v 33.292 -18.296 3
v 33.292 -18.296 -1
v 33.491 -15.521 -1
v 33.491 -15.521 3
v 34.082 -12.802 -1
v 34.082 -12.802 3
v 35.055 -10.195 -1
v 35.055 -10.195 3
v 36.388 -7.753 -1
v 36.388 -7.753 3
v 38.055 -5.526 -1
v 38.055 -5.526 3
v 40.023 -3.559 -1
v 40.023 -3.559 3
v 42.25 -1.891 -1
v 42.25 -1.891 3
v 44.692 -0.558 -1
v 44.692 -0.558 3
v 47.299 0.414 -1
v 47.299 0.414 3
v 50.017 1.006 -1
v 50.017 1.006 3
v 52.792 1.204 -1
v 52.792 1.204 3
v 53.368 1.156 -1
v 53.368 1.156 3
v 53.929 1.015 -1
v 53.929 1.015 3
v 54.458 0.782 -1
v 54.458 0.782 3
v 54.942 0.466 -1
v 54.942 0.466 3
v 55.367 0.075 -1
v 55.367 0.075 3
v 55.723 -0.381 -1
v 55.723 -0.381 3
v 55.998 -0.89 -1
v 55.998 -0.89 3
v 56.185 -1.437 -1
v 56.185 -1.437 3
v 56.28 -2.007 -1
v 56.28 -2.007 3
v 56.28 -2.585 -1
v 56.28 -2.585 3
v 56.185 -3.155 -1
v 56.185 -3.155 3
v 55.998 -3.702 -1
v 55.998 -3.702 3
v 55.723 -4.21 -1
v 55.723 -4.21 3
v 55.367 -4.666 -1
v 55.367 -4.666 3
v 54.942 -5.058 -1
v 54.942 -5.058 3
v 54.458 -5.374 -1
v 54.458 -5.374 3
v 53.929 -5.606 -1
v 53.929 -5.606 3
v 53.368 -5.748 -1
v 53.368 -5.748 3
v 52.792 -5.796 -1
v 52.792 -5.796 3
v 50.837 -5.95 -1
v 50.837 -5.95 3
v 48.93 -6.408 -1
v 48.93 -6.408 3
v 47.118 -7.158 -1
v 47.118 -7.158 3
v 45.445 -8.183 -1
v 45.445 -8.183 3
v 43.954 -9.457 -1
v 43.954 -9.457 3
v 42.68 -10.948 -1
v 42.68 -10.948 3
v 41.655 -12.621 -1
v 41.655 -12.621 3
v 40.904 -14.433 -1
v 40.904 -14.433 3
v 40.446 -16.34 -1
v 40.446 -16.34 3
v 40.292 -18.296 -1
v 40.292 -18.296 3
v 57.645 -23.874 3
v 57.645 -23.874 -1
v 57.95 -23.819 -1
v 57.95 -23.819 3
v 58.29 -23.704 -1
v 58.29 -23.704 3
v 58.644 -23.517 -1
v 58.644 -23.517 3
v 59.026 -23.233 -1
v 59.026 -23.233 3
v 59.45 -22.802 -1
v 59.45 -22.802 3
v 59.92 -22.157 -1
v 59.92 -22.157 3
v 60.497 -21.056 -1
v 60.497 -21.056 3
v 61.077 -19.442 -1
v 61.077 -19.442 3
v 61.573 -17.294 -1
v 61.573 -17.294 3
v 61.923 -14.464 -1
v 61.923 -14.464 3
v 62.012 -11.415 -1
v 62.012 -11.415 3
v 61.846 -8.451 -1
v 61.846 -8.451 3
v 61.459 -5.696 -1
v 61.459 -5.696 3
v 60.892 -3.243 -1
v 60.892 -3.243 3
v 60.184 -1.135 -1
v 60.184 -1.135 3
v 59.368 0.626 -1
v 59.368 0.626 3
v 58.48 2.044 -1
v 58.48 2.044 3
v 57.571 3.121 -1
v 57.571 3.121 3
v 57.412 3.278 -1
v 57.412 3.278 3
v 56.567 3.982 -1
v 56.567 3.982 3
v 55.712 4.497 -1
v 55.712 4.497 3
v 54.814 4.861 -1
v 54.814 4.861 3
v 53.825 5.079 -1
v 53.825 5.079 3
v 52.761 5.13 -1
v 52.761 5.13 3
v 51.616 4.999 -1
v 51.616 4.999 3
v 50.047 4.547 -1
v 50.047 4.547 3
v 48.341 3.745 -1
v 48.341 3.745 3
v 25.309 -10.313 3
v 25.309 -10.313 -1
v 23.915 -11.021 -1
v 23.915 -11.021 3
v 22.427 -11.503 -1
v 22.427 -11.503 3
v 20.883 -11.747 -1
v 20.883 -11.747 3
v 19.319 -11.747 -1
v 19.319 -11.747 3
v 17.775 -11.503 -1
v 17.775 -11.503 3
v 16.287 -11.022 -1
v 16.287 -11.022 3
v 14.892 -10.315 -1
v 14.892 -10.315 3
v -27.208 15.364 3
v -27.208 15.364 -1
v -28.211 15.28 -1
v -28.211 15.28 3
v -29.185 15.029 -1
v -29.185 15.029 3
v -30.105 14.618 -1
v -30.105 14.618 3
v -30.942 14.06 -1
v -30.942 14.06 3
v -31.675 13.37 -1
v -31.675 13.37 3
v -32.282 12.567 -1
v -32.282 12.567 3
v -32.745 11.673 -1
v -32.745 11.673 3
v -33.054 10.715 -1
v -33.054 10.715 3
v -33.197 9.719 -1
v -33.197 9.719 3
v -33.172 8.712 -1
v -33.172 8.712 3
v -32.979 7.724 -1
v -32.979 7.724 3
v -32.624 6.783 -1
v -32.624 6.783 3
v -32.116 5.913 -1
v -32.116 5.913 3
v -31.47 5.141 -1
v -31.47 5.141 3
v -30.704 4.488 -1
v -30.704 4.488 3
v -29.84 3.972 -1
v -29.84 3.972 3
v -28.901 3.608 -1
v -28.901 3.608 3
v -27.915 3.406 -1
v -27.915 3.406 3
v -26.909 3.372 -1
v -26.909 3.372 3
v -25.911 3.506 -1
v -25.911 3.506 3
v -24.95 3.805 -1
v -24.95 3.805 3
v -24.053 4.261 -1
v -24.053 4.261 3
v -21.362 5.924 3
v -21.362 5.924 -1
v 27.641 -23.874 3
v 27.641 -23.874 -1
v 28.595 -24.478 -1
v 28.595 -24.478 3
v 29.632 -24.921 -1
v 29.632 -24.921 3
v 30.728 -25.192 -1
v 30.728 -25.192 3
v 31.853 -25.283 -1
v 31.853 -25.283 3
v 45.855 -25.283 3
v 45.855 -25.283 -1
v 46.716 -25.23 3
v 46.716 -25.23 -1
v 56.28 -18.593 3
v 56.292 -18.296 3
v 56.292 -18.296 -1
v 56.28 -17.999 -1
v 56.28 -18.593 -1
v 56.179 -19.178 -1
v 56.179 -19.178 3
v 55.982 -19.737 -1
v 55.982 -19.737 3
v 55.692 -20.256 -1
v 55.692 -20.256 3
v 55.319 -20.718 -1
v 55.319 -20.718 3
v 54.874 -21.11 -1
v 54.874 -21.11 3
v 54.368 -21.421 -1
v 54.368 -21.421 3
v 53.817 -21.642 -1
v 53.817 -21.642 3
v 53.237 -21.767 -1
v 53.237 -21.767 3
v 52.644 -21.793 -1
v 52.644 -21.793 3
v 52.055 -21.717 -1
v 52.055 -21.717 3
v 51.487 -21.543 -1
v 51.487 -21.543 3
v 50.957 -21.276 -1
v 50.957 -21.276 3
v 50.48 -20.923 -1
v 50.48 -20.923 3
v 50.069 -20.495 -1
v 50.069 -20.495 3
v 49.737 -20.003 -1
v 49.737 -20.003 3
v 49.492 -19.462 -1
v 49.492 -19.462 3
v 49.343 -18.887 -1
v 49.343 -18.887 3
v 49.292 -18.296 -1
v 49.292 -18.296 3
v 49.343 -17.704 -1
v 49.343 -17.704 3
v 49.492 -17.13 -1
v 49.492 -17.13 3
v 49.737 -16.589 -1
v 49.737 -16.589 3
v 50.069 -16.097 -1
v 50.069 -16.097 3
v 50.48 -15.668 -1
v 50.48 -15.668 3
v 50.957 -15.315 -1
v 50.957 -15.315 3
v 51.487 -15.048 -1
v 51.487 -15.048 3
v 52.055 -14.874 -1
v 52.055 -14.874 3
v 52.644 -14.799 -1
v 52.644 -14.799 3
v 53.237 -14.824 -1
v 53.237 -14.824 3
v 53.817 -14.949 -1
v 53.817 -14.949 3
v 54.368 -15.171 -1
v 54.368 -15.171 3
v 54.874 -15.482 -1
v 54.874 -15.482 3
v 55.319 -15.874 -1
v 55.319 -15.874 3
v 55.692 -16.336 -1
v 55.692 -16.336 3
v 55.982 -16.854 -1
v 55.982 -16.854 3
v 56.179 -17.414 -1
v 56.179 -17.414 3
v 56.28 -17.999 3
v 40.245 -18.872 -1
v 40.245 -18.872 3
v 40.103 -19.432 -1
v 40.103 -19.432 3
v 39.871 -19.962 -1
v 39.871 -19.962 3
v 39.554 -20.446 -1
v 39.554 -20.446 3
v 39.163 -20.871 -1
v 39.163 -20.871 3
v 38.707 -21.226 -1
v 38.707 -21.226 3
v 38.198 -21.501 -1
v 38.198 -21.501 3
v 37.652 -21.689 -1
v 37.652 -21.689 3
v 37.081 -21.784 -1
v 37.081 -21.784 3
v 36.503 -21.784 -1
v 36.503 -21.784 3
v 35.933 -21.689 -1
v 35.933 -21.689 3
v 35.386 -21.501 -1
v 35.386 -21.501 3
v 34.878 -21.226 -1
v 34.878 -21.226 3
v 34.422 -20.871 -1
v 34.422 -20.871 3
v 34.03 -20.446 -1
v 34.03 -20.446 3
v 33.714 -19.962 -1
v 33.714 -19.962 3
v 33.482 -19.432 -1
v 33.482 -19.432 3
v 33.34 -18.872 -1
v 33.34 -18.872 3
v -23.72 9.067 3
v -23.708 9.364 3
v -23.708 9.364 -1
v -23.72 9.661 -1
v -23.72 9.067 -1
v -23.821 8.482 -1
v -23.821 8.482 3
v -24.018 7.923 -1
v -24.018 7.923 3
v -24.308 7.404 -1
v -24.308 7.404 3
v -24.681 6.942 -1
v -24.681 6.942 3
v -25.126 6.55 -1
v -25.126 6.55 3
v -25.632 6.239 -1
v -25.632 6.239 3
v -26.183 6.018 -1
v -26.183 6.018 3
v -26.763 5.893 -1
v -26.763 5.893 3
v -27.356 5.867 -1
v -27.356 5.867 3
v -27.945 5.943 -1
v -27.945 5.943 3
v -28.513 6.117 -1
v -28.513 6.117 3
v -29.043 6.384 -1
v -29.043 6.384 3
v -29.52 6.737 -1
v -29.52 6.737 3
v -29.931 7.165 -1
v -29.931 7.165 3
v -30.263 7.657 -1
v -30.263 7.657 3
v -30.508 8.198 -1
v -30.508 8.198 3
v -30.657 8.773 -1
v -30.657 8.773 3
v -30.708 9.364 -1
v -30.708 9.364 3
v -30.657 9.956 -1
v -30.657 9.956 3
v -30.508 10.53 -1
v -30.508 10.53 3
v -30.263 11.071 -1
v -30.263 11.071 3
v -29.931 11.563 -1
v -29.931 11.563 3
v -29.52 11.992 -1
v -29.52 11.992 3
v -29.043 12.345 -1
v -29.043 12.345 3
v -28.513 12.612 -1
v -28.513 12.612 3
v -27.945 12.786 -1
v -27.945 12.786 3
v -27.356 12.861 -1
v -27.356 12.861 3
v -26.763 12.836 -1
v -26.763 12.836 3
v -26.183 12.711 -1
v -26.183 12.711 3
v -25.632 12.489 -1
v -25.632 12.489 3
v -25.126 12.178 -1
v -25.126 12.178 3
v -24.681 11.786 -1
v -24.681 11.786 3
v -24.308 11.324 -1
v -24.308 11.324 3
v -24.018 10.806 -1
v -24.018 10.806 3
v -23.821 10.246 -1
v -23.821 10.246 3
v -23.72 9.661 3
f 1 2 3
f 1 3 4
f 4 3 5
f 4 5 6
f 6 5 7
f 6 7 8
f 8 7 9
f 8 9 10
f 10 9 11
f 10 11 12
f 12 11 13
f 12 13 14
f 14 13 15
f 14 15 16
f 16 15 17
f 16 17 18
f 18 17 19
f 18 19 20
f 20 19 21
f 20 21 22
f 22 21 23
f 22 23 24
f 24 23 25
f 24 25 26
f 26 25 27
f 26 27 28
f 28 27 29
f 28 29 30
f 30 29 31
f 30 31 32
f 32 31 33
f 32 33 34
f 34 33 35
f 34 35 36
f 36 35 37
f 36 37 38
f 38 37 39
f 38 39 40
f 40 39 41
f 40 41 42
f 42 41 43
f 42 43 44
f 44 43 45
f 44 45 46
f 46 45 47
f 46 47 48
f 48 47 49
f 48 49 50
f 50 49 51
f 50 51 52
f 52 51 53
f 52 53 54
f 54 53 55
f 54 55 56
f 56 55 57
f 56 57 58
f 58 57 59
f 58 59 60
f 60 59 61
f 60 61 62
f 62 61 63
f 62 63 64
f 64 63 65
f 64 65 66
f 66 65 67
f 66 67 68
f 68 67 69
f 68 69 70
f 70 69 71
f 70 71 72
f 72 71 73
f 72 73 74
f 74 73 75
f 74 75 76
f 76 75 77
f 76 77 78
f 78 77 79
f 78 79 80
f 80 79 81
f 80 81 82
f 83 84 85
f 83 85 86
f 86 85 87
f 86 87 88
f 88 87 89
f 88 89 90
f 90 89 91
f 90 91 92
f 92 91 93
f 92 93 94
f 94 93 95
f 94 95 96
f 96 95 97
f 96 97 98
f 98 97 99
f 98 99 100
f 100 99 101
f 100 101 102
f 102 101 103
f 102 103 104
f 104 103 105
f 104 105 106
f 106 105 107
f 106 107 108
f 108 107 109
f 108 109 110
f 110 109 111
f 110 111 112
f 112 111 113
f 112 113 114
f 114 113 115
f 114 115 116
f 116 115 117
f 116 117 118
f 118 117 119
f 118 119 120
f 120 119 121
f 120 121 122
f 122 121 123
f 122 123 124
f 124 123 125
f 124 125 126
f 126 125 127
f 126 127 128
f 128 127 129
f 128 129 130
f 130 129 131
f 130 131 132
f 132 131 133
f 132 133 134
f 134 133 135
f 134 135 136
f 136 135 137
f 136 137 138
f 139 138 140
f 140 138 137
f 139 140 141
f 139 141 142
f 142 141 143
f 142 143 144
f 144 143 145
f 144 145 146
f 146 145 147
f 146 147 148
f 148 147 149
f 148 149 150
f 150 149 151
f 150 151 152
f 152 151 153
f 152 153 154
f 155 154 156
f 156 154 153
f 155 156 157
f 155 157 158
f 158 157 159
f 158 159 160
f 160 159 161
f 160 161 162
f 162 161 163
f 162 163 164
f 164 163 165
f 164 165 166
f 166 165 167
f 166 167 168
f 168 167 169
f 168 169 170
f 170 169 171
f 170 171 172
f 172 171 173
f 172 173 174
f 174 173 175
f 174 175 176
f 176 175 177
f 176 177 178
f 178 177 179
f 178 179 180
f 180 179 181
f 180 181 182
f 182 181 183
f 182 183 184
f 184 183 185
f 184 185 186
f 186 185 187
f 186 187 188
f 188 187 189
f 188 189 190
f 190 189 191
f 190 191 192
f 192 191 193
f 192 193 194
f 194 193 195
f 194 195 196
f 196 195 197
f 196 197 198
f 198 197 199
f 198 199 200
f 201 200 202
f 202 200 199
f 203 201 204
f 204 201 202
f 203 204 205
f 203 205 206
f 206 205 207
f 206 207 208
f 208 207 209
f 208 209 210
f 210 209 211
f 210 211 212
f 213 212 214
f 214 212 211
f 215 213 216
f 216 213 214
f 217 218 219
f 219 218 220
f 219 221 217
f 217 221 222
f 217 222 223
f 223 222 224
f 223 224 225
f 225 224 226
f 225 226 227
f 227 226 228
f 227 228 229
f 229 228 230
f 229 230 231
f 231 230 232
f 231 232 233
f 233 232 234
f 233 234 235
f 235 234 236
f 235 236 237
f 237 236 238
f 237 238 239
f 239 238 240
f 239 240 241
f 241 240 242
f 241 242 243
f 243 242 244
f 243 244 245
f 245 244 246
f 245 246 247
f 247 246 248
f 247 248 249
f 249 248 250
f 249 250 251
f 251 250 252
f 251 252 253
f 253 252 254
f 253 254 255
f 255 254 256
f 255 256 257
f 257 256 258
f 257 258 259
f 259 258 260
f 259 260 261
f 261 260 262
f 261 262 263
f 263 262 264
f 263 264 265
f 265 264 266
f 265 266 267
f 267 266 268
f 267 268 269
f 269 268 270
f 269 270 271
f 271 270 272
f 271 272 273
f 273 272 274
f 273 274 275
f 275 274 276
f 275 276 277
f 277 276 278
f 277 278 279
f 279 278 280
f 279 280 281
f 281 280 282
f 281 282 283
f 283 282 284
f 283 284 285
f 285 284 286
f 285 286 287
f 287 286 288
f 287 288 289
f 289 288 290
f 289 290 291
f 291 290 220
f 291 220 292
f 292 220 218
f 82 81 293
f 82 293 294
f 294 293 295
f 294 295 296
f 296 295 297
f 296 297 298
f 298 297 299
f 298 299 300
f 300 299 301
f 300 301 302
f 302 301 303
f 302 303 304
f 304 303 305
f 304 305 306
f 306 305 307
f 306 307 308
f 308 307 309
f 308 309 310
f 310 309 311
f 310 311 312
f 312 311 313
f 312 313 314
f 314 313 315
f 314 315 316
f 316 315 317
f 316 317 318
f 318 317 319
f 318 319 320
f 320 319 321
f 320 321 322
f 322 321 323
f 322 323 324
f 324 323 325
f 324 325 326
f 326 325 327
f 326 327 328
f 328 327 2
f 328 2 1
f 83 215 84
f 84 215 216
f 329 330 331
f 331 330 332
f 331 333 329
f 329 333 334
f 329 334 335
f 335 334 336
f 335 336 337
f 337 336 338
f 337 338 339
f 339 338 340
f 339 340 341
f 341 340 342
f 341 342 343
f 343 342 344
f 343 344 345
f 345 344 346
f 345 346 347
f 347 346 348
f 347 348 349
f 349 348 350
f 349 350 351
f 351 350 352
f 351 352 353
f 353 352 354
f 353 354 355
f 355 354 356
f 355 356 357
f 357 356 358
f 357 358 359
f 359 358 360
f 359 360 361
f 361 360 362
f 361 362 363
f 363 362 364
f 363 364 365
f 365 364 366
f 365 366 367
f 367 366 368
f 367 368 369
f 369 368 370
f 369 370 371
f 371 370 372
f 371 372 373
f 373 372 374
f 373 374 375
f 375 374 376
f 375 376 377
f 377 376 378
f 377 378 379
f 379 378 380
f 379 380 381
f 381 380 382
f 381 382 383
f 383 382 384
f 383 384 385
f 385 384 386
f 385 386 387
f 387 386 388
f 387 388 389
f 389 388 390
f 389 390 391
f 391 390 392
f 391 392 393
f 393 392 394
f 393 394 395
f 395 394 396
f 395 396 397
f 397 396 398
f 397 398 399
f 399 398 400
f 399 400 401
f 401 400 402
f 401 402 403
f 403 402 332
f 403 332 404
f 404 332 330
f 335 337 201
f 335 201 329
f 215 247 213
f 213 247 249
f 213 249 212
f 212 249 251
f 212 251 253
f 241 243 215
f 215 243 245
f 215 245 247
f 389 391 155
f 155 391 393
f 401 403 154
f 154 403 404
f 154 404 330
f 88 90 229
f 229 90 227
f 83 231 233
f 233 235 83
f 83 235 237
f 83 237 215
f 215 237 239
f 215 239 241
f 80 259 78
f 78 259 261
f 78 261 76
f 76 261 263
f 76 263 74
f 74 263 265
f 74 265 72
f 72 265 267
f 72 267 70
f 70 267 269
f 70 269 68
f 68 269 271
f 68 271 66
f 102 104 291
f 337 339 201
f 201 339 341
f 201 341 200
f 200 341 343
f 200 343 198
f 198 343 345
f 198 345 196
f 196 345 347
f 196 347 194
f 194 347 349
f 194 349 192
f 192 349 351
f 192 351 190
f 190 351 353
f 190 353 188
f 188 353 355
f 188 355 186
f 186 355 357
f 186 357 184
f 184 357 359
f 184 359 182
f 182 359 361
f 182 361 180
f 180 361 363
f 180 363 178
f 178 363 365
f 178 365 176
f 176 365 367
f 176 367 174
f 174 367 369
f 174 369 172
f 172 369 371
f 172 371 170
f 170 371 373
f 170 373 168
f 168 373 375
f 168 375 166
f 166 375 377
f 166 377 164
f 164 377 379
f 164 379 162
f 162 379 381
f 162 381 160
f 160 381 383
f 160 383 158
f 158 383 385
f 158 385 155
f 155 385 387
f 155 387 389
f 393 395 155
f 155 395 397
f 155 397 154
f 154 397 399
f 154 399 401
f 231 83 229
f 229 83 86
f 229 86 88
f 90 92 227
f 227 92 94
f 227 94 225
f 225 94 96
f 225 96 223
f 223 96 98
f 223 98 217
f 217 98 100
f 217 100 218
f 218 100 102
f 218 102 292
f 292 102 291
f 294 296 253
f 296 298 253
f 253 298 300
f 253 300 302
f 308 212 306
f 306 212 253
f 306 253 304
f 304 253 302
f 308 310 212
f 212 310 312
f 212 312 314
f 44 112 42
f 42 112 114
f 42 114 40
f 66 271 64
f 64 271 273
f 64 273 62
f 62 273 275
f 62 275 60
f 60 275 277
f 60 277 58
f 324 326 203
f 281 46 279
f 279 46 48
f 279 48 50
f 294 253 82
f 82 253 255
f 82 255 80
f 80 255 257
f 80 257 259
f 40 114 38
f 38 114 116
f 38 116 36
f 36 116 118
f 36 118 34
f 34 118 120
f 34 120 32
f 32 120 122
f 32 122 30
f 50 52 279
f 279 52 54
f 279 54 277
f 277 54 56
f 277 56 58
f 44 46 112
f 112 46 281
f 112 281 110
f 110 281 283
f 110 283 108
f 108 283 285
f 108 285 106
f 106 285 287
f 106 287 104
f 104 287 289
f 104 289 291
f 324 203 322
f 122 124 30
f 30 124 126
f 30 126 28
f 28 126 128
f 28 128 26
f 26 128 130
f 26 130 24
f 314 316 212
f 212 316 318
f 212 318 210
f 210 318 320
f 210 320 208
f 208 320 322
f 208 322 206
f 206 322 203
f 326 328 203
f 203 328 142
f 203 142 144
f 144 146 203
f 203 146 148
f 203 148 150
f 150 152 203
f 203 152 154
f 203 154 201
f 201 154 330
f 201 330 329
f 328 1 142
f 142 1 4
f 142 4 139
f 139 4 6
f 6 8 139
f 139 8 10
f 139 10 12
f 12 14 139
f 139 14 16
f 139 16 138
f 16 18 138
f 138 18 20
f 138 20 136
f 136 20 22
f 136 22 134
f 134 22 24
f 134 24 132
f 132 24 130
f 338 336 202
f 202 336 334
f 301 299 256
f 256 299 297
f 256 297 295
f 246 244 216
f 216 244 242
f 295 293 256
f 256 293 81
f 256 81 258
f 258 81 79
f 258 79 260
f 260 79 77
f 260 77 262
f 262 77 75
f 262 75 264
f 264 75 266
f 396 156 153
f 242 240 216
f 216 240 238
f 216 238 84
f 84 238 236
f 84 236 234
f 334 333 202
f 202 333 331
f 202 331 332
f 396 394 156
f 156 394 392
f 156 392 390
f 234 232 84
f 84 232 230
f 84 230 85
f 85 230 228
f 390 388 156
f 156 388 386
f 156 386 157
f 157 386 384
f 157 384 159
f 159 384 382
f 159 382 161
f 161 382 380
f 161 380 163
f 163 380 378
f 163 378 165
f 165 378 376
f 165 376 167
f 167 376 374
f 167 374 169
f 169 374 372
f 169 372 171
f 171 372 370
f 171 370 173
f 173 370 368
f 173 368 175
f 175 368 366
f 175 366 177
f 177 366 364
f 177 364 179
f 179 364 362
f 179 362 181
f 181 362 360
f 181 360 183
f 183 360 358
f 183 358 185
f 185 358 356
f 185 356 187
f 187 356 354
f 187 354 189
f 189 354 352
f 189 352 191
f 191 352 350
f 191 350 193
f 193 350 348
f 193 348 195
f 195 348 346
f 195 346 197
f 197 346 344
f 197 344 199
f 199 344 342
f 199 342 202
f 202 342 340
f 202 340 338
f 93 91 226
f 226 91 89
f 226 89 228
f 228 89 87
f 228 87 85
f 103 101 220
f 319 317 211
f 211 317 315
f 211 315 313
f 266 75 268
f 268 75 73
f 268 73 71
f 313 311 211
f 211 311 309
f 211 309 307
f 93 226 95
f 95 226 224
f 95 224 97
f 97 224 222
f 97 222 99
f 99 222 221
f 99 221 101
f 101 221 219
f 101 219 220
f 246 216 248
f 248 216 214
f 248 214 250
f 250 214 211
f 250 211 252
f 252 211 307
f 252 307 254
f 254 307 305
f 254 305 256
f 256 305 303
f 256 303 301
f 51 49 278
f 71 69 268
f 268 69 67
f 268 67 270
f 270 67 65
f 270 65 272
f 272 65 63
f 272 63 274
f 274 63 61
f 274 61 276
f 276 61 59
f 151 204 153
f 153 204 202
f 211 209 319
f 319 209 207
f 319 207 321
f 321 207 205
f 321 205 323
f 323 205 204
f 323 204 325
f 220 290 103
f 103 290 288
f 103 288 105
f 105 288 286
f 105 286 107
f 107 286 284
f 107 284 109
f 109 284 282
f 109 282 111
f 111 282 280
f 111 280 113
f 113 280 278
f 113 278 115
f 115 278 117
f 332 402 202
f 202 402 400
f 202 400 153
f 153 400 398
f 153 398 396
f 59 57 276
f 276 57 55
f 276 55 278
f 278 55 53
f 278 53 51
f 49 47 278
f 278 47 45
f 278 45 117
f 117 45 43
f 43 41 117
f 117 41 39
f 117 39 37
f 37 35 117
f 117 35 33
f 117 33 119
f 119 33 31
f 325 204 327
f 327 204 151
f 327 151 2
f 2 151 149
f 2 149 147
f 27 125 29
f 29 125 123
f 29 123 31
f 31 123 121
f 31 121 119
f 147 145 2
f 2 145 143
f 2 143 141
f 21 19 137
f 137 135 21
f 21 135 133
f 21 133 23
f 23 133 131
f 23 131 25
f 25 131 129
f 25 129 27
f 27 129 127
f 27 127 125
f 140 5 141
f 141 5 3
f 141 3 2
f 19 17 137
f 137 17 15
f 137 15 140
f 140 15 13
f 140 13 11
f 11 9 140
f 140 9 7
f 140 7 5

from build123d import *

# Parameters (mm, degrees)
SKETCH1_R           = 1.75
BOSS_EXTRUDE1_DEPTH = 2
SCALE1_DEPTH        = 2
SCALE1_START        = -0.999997816
SCALE1_2_OUTLINE_R  = 3.5
SCALE1_2_DEPTH      = 4


# Read off the part's stored shape, not the designer's step: Scale1
with BuildPart() as part:
    # Sketch1 → Boss-Extrude1 (new body)
    with BuildSketch(Plane.XY):
        with BuildLine():
            Line((37.774530777, -2.80976251), (26.258490635, -9.838609559))
            ThreePointArc((26.258490635, -9.838609559), (23.654335286, -10.570760941), (21.04996396, -9.839378194))
            Line((21.04996396, -9.839378194), (0, 3))
            ThreePointArc((0, 3), (-2.885775614, -0.819938477), (1.577438975, -2.551800596))
            Line((1.577438975, -2.551800596), (2.923005699, -1.720015621))
            Line((2.923005699, -1.720015621), (27.42442319, -16.619165126))
            ThreePointArc((27.42442319, -16.619165126), (28.420022181, -17.142817893), (29.530314816, -17.323593546))
            Line((29.530314816, -17.323593546), (36.531170313, -17.323593546))
            ThreePointArc((36.531170313, -17.323593546), (36.747003069, -17.316932382), (36.962014284, -17.296974244))
            Line((36.962014284, -17.296974244), (42.4263802, -16.619165126))
            add(Edge.make_bspline(
                [(37.774530777, -2.80976251), (45.652503852, 1.576646515), (46.016818074, -16.230167124), (42.4263802, -16.619165126)],
                knots=[0, 0, 0, 0, 1, 1, 1, 1], degree=3))
        make_face()
        Circle(SKETCH1_R, mode=Mode.SUBTRACT)
        with Locations((40, -13.83)):
            Circle(SKETCH1_R, mode=Mode.SUBTRACT)
        with BuildLine():
            ThreePointArc((40, -7.58), (41.75, -5.83), (40, -4.08))
            ThreePointArc((40, -4.08), (33.105708883, -6.935708883), (30.25, -13.83))
            ThreePointArc((30.25, -13.83), (32, -15.58), (33.75, -13.83))
            ThreePointArc((33.75, -13.83), (35.580582618, -9.410582618), (40, -7.58))
        make_face(mode=Mode.SUBTRACT)
    extrude(amount=BOSS_EXTRUDE1_DEPTH)

    # Scale1 outline → Scale1 (cut)
    with BuildSketch(Plane.XY):
        with BuildLine():
            Line((25.309397888, -10.313026346), (25.407923969, -10.252890679))
            ThreePointArc((25.407923969, -10.252890679), (23.18128534, -10.548403138), (21.04996396, -9.839378194))
            Line((21.04996396, -9.839378194), (0, 3))
            ThreePointArc((0, 3), (-1.910769589, 2.312781783), (-2.946128732, 0.565973052))
            Line((-2.946128732, 0.565973052), (-1.741862619, -0.168566356))
            ThreePointArc((-1.741862619, -0.168566356), (0.911271712, 1.494016019), (0.647354046, -1.62586369))
            Line((0.647354046, -1.62586369), (1.869458664, -2.371283654))
            Line((1.869458664, -2.371283654), (2.923005699, -1.720015621))
            Line((2.923005699, -1.720015621), (19.42459166, -11.75452062))
            ThreePointArc((19.42459166, -11.75452062), (22.478792733, -11.490181349), (25.309397888, -10.313026346))
        make_face()
        with BuildLine():
            add(Edge.make_bspline(
                [(41.45450238, -2.430697688), (43.278912085, -3.340053045), (44.251250713, -6.082636591), (44.527913808, -8.917748085)],
                knots=[0.188633601, 0.188633601, 0.188633601, 0.188633601, 0.541520813, 0.541520813, 0.541520813, 0.541520813], degree=3))
            ThreePointArc((41.45450238, -2.430697688), (40.4125829, -3.229629308), (39.426788196, -4.096864419))
            ThreePointArc((39.426788196, -4.096864419), (39.713270083, -4.084217017), (40, -4.08))
            ThreePointArc((40, -4.08), (41.75, -5.83), (40, -7.58))
            ThreePointArc((40, -7.58), (37.394812966, -8.148846903), (35.263850756, -9.751839835))
            ThreePointArc((35.263850756, -9.751839835), (33.906901167, -13.439130778), (33.316667581, -17.323593546))
            Line((33.316667581, -17.323593546), (36.531170313, -17.323593546))
            ThreePointArc((36.531170313, -17.323593546), (36.747003069, -17.316932382), (36.962014284, -17.296974244))
            Line((36.962014284, -17.296974244), (40.373564213, -16.873799866))
            ThreePointArc((40.373564213, -16.873799866), (40.47496583, -16.16733217), (40.616522643, -15.467803355))
            ThreePointArc((40.616522643, -15.467803355), (38.347783736, -13.253214584), (41.501863894, -12.931721176))
            ThreePointArc((41.501863894, -12.931721176), (42.811031733, -10.771051035), (44.527913808, -8.917748085))
        make_face()
    extrude(amount=SCALE1_DEPTH, mode=Mode.SUBTRACT)

    # Scale1 2 outline → Scale1 2 (add)
    with BuildSketch(Plane.XY.offset(SCALE1_START)):
        with BuildLine():
            add(Edge.make_bspline(
                [(48.341478172, 3.744667751), (64.097424322, 12.517485802), (64.826052766, -23.096141476), (57.645177019, -23.874137481)],
                knots=[0, 0, 0, 0, 1, 1, 1, 1], degree=3))
            Line((48.341478172, 3.744667751), (25.309397888, -10.313026346))
            ThreePointArc((25.309397888, -10.313026346), (20.101087191, -11.77732911), (14.892344539, -10.314563616))
            Line((14.892344539, -10.314563616), (-27.207583382, 15.364192772))
            ThreePointArc((-27.207583382, 15.364192772), (-32.97913461, 7.724315817), (-24.052705432, 4.26059158))
            Line((-24.052705432, 4.26059158), (-21.361571984, 5.924161529))
            Line((-21.361571984, 5.924161529), (27.641262999, -23.874137481))
            ThreePointArc((27.641262999, -23.874137481), (29.632460981, -24.921443014), (31.85304625, -25.28299432))
            Line((31.85304625, -25.28299432), (45.854757245, -25.28299432))
            ThreePointArc((45.854757245, -25.28299432), (46.286422756, -25.269671992), (46.716445185, -25.229755716))
            Line((46.716445185, -25.229755716), (57.645177019, -23.874137481))
        make_face()
        with BuildLine():
            ThreePointArc((33.292416618, -18.295807228), (39.003834385, -4.507224995), (52.792416618, 1.204192772))
            ThreePointArc((52.792416618, 1.204192772), (56.292416618, -2.295807228), (52.792416618, -5.795807228))
            ThreePointArc((52.792416618, -5.795807228), (43.953581853, -9.456972464), (40.292416618, -18.295807228))
            ThreePointArc((40.292416618, -18.295807228), (36.792416618, -21.795807228), (33.292416618, -18.295807228))
        make_face(mode=Mode.SUBTRACT)
        with Locations((52.792416618, -18.295807228)):
            Circle(SCALE1_2_OUTLINE_R, mode=Mode.SUBTRACT)
        with Locations((-27.207583382, 9.364192772)):
            Circle(SCALE1_2_OUTLINE_R, mode=Mode.SUBTRACT)
    extrude(amount=SCALE1_2_DEPTH)


solid = part.part
